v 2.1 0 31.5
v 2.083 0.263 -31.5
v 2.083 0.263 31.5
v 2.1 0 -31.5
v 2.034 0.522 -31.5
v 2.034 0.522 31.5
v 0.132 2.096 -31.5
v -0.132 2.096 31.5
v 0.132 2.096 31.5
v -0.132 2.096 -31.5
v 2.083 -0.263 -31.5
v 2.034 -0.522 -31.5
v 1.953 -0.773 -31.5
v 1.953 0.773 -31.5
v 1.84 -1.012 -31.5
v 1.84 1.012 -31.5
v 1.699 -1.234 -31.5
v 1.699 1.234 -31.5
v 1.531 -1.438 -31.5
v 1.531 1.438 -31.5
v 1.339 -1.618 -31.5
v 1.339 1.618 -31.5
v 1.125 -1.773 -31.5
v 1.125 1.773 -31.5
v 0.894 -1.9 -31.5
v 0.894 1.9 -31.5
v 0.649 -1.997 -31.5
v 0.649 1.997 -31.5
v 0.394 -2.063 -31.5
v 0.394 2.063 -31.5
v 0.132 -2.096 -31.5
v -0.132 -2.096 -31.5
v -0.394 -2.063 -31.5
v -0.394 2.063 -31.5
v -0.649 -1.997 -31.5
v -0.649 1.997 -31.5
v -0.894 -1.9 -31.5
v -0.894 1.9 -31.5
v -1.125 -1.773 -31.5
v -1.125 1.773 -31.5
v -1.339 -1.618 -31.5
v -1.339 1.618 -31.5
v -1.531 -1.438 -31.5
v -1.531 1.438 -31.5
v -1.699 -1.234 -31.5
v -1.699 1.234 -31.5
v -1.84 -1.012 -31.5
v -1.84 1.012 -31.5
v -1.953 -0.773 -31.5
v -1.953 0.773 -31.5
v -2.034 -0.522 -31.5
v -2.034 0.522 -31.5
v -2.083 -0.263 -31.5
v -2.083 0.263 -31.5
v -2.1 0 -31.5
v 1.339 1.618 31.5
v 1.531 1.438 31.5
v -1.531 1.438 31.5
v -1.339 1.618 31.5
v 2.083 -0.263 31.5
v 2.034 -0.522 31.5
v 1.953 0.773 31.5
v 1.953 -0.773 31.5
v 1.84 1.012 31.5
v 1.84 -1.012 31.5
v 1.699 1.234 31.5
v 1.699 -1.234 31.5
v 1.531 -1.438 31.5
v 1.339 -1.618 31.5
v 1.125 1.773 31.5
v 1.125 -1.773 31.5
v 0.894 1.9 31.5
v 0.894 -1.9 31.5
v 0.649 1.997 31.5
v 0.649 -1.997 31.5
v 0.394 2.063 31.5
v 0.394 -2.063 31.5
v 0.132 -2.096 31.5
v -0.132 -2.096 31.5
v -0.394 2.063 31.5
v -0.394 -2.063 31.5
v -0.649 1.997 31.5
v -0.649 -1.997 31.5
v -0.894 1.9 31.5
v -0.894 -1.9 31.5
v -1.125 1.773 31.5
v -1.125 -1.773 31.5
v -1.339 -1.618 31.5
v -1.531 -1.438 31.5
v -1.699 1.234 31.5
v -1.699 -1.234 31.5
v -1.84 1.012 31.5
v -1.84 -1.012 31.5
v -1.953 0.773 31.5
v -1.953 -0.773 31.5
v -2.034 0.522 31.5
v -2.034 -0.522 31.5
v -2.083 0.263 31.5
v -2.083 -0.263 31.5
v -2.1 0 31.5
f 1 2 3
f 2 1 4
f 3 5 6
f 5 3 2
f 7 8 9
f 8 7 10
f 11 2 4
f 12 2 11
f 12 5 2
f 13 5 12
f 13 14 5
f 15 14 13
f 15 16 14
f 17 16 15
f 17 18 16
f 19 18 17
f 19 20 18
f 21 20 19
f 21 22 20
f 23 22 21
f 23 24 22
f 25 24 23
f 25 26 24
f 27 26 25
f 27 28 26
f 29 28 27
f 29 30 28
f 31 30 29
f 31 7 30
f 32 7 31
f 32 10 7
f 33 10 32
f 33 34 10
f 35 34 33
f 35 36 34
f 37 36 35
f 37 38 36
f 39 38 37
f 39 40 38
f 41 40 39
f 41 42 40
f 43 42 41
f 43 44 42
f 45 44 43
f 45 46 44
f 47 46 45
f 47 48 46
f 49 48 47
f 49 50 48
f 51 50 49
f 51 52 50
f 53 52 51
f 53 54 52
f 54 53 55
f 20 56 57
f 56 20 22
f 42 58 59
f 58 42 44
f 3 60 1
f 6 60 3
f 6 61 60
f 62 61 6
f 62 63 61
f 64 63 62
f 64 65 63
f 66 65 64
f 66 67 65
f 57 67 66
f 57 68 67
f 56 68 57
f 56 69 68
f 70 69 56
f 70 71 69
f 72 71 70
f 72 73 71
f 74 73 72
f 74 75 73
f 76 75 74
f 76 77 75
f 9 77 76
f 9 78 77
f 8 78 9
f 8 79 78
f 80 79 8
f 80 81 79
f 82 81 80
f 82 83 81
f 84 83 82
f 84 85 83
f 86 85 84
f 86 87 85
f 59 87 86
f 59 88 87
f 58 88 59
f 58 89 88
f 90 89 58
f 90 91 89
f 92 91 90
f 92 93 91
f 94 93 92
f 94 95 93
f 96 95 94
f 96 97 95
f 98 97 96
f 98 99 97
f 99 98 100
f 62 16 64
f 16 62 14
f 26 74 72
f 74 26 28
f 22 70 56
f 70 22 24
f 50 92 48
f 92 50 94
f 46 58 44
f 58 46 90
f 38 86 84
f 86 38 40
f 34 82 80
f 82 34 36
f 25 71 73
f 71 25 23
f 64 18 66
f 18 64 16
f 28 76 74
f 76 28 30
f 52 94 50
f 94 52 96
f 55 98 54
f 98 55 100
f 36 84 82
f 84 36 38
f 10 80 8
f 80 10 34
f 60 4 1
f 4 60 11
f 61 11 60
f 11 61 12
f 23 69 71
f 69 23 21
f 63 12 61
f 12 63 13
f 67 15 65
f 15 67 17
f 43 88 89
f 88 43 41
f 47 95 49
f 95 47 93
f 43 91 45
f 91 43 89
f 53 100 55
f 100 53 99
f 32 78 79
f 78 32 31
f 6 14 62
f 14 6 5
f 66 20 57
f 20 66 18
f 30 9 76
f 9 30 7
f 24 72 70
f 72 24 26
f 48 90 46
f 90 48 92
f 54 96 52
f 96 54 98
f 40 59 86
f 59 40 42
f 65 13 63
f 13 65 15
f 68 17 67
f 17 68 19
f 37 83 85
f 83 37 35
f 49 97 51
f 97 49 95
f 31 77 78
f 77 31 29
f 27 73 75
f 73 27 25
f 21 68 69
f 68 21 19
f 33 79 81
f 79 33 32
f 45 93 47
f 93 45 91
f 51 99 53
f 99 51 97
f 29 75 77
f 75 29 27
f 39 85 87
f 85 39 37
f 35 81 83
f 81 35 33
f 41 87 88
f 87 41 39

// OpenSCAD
$fn = 50;


difference() {
	union() {
		translate(v = [0, 0, -31.5000000000]) {
			cylinder(h = 63, r = 2.1000000000);
		}
	}
	union() {
		translate(v = [0, 0, -100.0000000000]) {
			cylinder(h = 200, r = 0);
		}
	}
}
